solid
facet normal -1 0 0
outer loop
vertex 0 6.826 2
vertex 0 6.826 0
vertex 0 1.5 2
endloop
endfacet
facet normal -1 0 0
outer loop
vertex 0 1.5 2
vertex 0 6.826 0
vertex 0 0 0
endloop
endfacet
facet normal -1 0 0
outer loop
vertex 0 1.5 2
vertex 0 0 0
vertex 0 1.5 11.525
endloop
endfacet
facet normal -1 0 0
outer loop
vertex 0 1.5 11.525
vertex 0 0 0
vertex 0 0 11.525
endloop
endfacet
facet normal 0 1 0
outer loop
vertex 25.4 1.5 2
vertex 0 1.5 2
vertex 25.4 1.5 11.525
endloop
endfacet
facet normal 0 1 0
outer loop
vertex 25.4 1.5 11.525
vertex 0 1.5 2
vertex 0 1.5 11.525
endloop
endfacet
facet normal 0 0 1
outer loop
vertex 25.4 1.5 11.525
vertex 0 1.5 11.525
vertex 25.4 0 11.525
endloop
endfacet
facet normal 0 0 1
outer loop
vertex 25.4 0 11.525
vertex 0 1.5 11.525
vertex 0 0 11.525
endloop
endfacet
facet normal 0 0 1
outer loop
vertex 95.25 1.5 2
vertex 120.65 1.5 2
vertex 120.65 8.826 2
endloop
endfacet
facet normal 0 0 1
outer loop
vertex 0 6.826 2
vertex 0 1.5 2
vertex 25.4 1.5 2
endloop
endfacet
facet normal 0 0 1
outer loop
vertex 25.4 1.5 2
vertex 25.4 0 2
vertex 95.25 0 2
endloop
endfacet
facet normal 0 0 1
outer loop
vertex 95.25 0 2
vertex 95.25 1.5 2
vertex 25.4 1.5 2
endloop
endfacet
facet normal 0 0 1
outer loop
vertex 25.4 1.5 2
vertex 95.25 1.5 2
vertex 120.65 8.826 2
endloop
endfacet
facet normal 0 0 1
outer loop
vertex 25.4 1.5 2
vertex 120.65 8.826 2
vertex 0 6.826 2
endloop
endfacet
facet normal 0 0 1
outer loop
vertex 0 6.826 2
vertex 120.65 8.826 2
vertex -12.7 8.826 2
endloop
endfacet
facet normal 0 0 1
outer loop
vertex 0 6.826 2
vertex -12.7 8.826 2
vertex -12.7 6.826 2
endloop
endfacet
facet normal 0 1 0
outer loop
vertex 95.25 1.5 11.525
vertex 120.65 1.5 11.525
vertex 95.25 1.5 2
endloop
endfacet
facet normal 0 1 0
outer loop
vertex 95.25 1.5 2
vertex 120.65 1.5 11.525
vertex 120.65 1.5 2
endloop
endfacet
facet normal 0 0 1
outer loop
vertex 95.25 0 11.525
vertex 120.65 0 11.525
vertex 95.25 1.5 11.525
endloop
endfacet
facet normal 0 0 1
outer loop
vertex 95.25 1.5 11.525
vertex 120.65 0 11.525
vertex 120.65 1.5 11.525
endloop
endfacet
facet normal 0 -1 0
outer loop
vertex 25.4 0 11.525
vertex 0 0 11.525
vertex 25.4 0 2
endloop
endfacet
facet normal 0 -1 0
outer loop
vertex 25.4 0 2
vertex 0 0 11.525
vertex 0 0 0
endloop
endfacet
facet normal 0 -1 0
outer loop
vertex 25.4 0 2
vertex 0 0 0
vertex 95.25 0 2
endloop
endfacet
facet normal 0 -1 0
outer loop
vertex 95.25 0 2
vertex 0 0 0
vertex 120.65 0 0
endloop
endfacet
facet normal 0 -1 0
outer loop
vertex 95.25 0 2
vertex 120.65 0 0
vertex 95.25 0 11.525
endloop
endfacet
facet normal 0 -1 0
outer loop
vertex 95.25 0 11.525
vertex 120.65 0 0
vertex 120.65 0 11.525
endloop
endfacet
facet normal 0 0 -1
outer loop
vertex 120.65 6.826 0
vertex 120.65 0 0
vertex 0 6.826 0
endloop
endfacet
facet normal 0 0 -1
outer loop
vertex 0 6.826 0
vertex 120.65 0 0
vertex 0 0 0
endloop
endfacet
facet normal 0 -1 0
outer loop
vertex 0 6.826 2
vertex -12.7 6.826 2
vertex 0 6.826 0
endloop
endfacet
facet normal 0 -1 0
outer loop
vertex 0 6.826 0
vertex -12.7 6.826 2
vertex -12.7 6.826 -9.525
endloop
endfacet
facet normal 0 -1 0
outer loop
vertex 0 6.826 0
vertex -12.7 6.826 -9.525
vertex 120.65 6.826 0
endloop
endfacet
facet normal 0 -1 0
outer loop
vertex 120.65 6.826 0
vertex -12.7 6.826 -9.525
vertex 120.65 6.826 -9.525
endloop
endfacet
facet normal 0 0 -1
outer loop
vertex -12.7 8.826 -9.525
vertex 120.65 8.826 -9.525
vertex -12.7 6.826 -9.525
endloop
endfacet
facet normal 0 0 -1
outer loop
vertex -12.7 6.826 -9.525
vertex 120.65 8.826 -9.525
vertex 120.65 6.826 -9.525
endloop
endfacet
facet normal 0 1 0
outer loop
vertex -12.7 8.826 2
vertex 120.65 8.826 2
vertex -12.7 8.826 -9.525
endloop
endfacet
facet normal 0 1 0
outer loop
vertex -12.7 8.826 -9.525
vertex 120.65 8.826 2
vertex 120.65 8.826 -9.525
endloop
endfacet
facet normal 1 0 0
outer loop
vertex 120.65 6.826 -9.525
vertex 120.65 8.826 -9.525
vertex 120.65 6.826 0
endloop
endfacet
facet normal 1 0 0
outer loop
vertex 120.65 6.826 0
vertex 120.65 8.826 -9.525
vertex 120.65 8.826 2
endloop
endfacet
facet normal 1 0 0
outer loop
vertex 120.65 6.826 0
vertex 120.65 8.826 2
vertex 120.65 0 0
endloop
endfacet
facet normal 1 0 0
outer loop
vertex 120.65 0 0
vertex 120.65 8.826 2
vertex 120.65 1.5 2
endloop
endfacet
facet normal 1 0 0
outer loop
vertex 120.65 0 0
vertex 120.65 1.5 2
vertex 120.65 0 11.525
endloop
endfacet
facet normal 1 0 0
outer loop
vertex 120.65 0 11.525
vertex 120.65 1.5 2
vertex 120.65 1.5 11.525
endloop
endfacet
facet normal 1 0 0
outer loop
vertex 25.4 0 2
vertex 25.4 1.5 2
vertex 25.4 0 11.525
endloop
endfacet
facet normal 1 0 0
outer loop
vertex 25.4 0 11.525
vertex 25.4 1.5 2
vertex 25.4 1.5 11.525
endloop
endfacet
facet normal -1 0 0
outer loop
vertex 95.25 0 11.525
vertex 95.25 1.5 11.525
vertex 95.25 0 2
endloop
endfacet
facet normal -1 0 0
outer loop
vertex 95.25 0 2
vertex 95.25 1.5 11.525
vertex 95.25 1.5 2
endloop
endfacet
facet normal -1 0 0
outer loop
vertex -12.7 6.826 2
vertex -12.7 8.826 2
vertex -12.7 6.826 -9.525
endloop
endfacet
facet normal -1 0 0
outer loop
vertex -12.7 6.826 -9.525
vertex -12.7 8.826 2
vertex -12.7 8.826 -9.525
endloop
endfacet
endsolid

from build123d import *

# Parameters (mm, degrees)
SKETCH1_W           = 2
SKETCH1_H           = 1.5
SKETCH1_W_2         = 9.525
BOSS_EXTRUDE1_DEPTH = 120.65
SKETCH2_W           = 69.85
SKETCH2_H           = 9.525
CUT_EXTRUDE1_DEPTH  = 9.825996
SKETCH3_W           = 11.525
SKETCH3_H           = 2
BOSS_EXTRUDE3_DEPTH = 12.7


with BuildPart() as part:
    # Sketch1 → Boss-Extrude1 (new body)
    with BuildSketch(Plane(origin=(0, 0, 0), x_dir=(0, 0, -1), z_dir=(1, 0, 0))):
        Polygon((-2, 8.825996), (-2, 1.5), (0, 1.5), (0, 6.825996), (9.525, 6.825996), (9.525, 8.825996), align=None)
        with Locations((-1, 0.75)):
            Rectangle(SKETCH1_W, SKETCH1_H)
        with Locations((-6.7625, 0.75)):
            Rectangle(SKETCH1_W_2, SKETCH1_H)
    extrude(amount=BOSS_EXTRUDE1_DEPTH)

    # Sketch2 → Cut-Extrude1 (cut, through all)
    with BuildSketch(Plane.XZ):
        with Locations((60.325, 6.7625)):
            Rectangle(SKETCH2_W, SKETCH2_H)
    extrude(amount=-CUT_EXTRUDE1_DEPTH, mode=Mode.SUBTRACT)

    # Sketch3 → Boss-Extrude3 (add)
    with BuildSketch(Plane.ZY):
        with Locations((-3.7625, 7.825996)):
            Rectangle(SKETCH3_W, SKETCH3_H)
    extrude(amount=BOSS_EXTRUDE3_DEPTH)


solid = part.part
